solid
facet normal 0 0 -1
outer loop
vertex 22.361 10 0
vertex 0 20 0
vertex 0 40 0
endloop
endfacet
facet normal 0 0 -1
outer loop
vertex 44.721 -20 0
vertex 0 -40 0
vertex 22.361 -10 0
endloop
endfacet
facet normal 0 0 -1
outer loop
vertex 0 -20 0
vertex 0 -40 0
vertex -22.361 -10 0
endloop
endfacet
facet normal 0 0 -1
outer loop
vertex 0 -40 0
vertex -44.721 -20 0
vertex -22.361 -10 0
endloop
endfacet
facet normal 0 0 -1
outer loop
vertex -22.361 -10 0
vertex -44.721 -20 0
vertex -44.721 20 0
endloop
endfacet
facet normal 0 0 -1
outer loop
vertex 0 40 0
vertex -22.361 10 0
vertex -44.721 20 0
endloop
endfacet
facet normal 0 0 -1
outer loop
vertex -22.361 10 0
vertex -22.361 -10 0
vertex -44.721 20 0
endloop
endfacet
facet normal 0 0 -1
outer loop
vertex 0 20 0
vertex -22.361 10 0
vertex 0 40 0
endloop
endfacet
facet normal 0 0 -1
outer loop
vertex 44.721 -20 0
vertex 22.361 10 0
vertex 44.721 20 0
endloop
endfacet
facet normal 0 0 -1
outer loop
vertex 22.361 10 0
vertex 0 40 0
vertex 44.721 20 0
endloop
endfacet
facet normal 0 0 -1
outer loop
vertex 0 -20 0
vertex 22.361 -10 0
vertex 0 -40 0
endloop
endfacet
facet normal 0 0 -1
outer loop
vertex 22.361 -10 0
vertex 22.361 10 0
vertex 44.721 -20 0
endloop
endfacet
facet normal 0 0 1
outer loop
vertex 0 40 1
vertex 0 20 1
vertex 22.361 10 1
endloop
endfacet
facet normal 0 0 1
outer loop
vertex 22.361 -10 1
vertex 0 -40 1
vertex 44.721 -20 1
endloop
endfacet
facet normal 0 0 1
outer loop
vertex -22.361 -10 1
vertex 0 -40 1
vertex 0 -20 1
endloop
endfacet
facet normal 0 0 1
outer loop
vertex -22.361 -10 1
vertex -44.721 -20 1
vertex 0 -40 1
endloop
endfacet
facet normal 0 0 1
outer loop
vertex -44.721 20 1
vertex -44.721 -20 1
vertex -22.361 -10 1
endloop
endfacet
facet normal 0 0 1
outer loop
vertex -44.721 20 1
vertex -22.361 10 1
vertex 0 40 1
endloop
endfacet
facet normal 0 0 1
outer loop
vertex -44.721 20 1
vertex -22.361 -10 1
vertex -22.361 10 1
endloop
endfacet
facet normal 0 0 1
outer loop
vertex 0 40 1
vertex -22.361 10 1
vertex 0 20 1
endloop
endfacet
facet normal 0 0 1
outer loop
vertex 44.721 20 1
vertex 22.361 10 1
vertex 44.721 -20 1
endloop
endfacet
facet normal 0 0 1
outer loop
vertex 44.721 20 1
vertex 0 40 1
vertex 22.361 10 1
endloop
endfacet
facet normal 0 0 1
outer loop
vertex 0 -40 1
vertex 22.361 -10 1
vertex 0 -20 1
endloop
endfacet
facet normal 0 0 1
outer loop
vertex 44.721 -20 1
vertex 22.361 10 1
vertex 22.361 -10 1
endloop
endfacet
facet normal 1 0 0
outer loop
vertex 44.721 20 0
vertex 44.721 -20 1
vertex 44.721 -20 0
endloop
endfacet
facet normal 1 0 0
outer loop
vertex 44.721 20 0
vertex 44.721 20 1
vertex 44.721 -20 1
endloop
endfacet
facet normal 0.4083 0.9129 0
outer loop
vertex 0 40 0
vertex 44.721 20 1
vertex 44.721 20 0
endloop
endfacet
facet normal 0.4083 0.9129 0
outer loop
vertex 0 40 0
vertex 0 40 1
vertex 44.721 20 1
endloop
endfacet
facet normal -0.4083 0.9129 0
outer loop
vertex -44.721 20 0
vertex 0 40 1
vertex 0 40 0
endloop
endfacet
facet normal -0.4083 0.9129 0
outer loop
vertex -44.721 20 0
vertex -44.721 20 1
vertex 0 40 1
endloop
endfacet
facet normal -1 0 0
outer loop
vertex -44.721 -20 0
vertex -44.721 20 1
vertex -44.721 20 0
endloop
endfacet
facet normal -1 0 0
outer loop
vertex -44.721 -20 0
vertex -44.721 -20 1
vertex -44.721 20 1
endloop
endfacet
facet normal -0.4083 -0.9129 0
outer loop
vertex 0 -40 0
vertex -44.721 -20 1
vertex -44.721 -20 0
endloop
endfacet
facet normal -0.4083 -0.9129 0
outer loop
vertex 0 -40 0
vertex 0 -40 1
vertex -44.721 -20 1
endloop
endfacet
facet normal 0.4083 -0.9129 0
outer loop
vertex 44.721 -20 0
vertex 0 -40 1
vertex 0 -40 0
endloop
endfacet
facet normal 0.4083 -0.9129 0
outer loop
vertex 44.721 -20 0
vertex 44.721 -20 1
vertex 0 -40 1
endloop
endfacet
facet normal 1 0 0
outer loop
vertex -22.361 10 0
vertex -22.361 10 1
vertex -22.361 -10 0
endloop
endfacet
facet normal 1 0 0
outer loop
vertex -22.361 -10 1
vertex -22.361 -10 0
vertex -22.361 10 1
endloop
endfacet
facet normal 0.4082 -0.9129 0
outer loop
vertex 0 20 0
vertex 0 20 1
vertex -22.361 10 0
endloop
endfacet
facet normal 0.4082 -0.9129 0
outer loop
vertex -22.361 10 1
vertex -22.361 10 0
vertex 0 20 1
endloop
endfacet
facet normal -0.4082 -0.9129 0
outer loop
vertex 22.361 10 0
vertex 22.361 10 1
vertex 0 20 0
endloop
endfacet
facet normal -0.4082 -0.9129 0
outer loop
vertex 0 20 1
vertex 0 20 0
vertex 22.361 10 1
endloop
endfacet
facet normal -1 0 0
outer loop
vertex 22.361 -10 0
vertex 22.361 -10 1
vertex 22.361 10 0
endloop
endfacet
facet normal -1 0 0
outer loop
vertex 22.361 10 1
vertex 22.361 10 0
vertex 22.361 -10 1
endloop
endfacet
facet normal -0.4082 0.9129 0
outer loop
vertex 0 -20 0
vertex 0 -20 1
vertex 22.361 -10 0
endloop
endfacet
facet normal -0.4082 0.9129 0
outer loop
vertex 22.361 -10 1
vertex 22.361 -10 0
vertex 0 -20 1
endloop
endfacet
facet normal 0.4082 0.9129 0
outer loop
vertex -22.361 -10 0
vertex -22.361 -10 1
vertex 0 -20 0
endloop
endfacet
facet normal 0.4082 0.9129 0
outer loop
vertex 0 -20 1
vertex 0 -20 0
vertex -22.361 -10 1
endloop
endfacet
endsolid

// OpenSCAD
UNIT = 20;
HALF_UNIT = UNIT / 2;
HEIGHT = UNIT * 4;
UNIT_WIDTH = sqrt(UNIT * UNIT + HALF_UNIT * HALF_UNIT);
THICKNESS=1;

POINTS = [
  [-2 * UNIT_WIDTH, -UNIT],
  [-2 * UNIT_WIDTH, UNIT],
  [0, UNIT * 2],
  [2 * UNIT_WIDTH, UNIT],
  [2 * UNIT_WIDTH, -UNIT],
  [0, UNIT * -2],
  [-UNIT_WIDTH, -UNIT / 2],
  [-UNIT_WIDTH, UNIT / 2],
  [0, UNIT],
  [UNIT_WIDTH, UNIT / 2],
  [UNIT_WIDTH, -UNIT / 2],
  [0, -UNIT]
];

linear_extrude(THICKNESS) polygon(points=POINTS, paths=[[0, 1, 2, 3, 4, 5], [6, 7, 8, 9, 10, 11]]);
